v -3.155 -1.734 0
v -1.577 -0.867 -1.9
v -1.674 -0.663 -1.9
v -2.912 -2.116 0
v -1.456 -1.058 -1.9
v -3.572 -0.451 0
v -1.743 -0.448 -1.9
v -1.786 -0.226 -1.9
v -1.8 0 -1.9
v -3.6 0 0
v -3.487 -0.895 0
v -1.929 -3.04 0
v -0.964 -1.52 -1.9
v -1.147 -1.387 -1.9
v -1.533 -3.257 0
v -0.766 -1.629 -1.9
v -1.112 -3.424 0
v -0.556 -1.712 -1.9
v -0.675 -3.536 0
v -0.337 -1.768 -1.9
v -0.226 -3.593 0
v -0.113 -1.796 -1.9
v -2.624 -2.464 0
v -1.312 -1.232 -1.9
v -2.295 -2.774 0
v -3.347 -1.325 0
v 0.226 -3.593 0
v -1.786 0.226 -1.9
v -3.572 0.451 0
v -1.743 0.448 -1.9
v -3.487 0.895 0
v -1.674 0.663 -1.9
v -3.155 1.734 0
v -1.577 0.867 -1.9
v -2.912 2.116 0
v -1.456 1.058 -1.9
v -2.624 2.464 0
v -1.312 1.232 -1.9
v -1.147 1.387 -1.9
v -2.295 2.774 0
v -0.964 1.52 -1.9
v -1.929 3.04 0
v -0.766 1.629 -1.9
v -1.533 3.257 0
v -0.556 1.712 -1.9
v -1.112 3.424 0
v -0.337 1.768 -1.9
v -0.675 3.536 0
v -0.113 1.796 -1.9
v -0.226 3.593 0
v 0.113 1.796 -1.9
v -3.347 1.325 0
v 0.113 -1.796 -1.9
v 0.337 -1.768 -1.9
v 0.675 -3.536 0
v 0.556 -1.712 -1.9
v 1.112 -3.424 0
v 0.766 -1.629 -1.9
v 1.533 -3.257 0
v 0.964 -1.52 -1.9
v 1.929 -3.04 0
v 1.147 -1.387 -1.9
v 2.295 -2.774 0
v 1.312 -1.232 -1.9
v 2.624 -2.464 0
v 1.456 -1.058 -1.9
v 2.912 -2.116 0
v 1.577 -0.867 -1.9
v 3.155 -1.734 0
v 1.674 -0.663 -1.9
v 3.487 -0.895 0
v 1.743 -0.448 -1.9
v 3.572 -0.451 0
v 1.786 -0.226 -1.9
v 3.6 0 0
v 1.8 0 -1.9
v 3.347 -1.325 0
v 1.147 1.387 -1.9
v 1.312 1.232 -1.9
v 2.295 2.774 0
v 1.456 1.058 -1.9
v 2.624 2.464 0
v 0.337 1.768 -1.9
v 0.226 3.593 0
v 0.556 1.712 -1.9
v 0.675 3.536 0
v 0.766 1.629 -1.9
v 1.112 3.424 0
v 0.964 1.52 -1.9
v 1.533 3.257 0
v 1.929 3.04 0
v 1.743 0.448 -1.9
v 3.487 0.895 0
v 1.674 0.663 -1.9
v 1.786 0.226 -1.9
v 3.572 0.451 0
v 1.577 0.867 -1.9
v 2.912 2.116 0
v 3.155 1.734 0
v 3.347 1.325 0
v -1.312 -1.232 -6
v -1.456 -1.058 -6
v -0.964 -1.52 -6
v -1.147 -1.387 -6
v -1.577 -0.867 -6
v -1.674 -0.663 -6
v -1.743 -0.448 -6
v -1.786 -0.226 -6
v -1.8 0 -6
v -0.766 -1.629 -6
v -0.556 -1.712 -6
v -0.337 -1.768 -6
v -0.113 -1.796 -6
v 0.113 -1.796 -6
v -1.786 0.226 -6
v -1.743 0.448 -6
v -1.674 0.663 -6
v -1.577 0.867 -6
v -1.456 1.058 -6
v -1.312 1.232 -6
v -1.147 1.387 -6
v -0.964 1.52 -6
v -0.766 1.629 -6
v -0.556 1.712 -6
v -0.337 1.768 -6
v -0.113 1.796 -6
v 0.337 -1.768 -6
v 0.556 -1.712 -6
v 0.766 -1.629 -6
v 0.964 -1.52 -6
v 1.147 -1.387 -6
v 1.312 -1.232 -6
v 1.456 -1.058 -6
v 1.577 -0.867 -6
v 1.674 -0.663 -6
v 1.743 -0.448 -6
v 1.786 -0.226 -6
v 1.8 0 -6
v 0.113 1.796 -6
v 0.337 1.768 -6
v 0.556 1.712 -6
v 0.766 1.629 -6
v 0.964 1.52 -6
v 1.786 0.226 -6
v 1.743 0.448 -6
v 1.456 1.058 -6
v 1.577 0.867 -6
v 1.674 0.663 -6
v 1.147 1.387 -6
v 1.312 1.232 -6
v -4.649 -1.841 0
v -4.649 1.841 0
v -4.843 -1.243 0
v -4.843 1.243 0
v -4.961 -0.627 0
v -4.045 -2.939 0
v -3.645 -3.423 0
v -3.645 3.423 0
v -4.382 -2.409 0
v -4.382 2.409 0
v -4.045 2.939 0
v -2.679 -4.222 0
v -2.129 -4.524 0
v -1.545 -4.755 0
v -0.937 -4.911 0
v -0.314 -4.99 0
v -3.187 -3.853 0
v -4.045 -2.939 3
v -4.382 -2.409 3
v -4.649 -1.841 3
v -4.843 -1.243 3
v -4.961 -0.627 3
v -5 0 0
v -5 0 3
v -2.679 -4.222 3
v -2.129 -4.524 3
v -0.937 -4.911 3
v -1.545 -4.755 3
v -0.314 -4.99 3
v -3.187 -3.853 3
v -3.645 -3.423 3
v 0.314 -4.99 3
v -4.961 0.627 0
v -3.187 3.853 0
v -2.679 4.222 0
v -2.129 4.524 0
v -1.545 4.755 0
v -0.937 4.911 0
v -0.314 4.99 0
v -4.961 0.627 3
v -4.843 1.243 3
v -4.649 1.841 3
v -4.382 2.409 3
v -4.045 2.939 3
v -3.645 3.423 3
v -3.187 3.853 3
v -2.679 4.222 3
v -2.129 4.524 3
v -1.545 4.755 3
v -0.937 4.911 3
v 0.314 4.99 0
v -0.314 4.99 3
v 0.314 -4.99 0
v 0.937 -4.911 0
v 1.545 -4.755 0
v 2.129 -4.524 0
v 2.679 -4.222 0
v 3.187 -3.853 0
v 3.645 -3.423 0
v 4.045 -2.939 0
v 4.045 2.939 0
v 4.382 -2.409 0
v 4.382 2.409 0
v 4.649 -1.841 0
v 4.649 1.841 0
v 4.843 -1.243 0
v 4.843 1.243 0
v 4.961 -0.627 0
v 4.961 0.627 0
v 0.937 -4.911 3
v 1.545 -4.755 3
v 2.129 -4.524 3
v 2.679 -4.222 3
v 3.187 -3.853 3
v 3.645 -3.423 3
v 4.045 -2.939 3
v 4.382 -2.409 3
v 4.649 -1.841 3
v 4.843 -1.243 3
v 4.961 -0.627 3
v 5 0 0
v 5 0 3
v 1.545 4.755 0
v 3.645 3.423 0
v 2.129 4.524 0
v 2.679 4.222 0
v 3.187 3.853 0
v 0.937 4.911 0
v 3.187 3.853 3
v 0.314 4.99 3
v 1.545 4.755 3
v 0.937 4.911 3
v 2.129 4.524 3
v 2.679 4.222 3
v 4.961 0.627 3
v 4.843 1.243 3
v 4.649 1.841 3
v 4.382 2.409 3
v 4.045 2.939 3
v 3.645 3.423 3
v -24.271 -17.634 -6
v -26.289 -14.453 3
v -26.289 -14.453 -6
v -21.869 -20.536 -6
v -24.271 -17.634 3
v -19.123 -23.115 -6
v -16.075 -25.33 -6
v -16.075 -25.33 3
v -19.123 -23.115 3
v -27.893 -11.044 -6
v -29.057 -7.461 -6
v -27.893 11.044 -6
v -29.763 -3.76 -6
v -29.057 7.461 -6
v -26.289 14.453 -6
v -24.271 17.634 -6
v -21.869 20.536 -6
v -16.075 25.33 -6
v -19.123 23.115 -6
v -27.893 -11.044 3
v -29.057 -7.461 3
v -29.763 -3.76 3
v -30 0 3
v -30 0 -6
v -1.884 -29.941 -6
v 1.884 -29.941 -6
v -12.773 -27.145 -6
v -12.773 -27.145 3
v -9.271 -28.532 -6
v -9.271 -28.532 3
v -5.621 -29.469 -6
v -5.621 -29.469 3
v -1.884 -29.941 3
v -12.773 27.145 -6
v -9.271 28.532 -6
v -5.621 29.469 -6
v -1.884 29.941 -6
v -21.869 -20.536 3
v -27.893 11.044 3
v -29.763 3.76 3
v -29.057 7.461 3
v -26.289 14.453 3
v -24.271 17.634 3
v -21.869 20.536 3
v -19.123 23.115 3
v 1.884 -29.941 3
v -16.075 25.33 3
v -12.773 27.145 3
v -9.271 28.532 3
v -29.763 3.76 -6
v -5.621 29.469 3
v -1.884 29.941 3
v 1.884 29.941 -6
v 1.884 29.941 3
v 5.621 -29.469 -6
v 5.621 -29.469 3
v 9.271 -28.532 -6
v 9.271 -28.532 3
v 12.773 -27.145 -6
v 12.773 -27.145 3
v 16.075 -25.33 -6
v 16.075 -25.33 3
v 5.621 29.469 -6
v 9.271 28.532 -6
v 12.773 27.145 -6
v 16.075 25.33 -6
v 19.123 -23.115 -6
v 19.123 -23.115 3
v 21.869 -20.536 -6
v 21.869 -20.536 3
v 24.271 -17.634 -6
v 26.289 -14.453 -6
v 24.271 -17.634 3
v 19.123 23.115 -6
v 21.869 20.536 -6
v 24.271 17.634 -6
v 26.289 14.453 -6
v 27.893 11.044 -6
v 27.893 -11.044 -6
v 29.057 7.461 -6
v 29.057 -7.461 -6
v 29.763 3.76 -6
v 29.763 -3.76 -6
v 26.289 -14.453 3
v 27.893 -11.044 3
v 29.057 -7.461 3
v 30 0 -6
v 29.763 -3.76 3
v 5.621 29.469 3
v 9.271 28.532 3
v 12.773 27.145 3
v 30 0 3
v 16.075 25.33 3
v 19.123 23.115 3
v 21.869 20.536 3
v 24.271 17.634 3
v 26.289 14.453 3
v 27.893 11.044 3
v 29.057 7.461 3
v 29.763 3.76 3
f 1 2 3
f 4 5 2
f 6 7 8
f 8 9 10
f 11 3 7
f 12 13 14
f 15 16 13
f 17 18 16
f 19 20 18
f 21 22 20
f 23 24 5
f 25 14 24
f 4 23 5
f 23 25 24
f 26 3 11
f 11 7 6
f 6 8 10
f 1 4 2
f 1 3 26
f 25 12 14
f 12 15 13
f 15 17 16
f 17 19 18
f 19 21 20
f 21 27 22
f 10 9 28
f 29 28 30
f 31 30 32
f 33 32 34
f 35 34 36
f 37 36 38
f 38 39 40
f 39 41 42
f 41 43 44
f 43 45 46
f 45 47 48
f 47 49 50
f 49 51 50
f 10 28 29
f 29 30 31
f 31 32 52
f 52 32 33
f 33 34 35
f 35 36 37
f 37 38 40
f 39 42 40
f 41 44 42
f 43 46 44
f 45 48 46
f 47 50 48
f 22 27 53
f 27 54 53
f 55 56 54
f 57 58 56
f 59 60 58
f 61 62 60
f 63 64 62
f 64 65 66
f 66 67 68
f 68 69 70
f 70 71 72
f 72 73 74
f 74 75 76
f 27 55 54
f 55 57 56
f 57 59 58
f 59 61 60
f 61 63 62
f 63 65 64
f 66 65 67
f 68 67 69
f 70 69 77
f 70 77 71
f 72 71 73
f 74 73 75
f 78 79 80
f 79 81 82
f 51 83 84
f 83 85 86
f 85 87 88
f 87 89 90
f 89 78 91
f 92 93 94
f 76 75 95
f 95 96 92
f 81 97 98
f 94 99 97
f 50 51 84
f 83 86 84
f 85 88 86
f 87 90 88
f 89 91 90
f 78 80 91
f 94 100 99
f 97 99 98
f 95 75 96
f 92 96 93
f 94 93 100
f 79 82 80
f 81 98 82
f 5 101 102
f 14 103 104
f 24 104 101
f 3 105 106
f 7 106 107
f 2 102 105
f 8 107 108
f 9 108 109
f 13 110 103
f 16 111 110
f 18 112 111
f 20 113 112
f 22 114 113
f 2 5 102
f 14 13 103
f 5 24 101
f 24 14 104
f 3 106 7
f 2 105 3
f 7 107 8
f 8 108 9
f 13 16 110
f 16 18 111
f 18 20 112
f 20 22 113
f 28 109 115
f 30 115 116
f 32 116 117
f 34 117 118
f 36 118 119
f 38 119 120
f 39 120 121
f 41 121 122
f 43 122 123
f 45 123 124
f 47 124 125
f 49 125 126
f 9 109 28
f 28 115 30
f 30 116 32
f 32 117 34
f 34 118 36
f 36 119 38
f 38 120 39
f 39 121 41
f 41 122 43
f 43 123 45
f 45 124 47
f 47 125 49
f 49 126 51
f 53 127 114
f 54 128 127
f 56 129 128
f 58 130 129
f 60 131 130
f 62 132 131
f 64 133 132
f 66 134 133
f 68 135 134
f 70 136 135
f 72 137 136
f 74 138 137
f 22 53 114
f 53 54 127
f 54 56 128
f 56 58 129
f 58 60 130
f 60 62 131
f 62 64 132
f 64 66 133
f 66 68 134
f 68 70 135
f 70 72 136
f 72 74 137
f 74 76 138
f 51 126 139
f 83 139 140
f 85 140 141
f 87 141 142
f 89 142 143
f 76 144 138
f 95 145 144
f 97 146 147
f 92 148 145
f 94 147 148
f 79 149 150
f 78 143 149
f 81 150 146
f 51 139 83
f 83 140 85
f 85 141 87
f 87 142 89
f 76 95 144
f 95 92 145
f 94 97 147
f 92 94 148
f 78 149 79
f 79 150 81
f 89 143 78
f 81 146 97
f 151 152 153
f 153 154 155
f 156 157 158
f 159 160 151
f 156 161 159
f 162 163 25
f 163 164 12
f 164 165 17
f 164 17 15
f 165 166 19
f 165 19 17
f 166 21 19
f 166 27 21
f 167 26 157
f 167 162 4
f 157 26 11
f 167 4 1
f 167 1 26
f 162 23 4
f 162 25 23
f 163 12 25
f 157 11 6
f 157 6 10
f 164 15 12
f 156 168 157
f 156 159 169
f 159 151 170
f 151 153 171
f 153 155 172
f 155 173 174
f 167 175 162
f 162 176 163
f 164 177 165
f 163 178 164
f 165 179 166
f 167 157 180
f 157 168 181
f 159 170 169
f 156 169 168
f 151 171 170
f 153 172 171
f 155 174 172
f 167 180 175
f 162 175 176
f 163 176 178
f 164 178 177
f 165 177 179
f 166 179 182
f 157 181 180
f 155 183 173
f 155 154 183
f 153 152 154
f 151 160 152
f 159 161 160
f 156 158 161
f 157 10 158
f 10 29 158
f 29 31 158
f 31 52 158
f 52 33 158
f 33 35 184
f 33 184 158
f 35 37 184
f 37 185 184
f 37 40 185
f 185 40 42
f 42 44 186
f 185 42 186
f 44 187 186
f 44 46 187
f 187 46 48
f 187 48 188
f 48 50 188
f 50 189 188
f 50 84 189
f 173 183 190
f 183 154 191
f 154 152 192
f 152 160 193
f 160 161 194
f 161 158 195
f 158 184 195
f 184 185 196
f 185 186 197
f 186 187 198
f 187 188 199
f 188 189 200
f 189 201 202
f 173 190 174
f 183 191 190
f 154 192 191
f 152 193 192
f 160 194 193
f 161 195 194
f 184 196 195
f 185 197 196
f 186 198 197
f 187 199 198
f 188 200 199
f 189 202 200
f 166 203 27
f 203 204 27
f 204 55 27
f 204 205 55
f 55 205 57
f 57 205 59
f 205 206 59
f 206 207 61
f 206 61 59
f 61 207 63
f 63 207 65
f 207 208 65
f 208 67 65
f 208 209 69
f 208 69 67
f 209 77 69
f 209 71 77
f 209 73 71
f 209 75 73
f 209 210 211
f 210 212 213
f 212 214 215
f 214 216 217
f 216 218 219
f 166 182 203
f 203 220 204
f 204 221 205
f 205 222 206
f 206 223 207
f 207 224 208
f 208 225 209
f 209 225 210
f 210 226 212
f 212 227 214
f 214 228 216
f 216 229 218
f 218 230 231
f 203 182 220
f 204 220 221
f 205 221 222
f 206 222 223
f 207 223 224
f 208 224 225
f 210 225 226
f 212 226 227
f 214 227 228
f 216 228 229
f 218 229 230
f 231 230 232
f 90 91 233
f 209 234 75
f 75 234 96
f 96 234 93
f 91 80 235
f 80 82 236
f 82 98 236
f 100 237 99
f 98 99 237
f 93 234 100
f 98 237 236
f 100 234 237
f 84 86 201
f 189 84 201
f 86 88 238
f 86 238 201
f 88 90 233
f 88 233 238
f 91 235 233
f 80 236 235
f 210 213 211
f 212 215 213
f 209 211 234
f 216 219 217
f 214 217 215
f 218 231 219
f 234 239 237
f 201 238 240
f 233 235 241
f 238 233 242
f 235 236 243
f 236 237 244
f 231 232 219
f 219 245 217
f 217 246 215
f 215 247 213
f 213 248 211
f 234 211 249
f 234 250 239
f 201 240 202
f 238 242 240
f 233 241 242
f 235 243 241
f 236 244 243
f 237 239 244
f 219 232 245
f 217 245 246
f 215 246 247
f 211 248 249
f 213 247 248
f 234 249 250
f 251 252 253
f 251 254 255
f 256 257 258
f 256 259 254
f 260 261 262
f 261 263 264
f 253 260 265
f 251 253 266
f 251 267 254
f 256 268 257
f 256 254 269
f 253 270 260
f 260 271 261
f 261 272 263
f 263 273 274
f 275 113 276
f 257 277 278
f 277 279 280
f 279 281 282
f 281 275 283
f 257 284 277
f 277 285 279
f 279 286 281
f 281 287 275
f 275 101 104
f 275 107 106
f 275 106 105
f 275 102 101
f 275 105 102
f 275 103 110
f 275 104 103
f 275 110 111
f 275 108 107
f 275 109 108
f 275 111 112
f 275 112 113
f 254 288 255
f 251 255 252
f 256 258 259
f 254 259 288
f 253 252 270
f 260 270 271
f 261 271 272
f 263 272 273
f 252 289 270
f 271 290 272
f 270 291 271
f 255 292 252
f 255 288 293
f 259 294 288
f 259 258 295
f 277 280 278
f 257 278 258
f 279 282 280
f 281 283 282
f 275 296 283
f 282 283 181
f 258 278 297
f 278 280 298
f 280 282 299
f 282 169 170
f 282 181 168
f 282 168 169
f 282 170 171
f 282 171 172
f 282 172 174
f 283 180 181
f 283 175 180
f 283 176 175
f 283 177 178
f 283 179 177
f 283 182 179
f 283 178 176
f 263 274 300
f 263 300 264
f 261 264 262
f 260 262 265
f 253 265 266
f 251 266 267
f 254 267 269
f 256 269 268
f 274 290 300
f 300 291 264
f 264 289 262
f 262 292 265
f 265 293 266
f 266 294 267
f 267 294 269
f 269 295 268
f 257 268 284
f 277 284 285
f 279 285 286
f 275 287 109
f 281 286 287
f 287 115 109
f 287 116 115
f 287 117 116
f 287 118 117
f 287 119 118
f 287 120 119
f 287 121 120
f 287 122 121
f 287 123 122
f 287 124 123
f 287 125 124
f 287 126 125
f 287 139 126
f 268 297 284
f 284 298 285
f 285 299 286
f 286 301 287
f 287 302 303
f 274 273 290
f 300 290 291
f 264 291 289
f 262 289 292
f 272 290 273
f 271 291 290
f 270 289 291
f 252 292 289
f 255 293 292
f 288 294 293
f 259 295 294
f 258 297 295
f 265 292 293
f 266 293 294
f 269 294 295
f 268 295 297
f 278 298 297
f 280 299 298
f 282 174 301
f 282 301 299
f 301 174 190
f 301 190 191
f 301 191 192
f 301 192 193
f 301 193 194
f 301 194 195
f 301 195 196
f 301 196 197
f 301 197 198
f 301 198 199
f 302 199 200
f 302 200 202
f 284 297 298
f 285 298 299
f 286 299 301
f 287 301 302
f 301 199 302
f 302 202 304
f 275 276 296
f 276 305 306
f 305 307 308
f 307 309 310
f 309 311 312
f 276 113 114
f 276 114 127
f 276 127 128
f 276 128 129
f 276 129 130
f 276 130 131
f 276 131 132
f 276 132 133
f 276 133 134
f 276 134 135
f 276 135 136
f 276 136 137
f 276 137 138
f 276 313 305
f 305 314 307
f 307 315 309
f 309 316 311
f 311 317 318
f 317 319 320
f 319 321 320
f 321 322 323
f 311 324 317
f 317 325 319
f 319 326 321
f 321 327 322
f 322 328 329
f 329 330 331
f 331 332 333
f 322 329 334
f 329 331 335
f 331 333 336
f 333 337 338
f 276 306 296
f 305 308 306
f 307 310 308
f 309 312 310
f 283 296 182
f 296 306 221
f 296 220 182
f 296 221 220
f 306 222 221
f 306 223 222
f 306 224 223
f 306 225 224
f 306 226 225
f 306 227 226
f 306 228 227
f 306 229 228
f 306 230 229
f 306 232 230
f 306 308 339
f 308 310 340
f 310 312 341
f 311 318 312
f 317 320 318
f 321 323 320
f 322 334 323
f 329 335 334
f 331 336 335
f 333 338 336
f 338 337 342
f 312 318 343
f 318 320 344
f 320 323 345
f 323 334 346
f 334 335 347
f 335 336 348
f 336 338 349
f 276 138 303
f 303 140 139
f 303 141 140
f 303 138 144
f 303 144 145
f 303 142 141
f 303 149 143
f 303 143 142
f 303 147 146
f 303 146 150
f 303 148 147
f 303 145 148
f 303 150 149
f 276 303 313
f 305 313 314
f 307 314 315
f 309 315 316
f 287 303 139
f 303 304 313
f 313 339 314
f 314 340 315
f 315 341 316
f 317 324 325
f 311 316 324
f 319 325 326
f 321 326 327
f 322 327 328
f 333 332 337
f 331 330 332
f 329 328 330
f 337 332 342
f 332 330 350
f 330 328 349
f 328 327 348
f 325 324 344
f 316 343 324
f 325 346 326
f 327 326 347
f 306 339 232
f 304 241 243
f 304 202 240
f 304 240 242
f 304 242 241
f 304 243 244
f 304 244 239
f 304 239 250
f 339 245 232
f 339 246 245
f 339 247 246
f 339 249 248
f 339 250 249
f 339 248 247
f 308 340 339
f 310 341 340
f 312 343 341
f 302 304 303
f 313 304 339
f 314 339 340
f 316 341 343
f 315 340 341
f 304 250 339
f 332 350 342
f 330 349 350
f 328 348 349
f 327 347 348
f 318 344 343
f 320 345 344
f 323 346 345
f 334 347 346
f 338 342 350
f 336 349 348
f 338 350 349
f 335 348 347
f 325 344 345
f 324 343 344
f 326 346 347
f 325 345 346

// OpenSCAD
$fn = 50;

difference() {
	union() {
		translate(v = [0, 0, -6.0]) {
			cylinder(h = 9, r = 30.0);
		}
	}
	union() {
		translate(v = [0, 0, 0]) {
			rotate(a = [0, 0, 0]) {
				difference() {
					union() {
						translate(v = [0, 0, -9.0]) {
							cylinder(h = 9, r = 1.5);
						}
						translate(v = [0, 0, -1.9]) {
							cylinder(h = 1.9, r1 = 1.8, r2 = 3.6);
						}
						translate(v = [0, 0, -9.0]) {
							cylinder(h = 9, r = 1.8);
						}
						translate(v = [0, 0, -9.0]) {
							cylinder(h = 9, r = 1.5);
						}
					}
					union();
				}
			}
		}
		#cylinder(h = 3, r = 5.0);
	}
}
